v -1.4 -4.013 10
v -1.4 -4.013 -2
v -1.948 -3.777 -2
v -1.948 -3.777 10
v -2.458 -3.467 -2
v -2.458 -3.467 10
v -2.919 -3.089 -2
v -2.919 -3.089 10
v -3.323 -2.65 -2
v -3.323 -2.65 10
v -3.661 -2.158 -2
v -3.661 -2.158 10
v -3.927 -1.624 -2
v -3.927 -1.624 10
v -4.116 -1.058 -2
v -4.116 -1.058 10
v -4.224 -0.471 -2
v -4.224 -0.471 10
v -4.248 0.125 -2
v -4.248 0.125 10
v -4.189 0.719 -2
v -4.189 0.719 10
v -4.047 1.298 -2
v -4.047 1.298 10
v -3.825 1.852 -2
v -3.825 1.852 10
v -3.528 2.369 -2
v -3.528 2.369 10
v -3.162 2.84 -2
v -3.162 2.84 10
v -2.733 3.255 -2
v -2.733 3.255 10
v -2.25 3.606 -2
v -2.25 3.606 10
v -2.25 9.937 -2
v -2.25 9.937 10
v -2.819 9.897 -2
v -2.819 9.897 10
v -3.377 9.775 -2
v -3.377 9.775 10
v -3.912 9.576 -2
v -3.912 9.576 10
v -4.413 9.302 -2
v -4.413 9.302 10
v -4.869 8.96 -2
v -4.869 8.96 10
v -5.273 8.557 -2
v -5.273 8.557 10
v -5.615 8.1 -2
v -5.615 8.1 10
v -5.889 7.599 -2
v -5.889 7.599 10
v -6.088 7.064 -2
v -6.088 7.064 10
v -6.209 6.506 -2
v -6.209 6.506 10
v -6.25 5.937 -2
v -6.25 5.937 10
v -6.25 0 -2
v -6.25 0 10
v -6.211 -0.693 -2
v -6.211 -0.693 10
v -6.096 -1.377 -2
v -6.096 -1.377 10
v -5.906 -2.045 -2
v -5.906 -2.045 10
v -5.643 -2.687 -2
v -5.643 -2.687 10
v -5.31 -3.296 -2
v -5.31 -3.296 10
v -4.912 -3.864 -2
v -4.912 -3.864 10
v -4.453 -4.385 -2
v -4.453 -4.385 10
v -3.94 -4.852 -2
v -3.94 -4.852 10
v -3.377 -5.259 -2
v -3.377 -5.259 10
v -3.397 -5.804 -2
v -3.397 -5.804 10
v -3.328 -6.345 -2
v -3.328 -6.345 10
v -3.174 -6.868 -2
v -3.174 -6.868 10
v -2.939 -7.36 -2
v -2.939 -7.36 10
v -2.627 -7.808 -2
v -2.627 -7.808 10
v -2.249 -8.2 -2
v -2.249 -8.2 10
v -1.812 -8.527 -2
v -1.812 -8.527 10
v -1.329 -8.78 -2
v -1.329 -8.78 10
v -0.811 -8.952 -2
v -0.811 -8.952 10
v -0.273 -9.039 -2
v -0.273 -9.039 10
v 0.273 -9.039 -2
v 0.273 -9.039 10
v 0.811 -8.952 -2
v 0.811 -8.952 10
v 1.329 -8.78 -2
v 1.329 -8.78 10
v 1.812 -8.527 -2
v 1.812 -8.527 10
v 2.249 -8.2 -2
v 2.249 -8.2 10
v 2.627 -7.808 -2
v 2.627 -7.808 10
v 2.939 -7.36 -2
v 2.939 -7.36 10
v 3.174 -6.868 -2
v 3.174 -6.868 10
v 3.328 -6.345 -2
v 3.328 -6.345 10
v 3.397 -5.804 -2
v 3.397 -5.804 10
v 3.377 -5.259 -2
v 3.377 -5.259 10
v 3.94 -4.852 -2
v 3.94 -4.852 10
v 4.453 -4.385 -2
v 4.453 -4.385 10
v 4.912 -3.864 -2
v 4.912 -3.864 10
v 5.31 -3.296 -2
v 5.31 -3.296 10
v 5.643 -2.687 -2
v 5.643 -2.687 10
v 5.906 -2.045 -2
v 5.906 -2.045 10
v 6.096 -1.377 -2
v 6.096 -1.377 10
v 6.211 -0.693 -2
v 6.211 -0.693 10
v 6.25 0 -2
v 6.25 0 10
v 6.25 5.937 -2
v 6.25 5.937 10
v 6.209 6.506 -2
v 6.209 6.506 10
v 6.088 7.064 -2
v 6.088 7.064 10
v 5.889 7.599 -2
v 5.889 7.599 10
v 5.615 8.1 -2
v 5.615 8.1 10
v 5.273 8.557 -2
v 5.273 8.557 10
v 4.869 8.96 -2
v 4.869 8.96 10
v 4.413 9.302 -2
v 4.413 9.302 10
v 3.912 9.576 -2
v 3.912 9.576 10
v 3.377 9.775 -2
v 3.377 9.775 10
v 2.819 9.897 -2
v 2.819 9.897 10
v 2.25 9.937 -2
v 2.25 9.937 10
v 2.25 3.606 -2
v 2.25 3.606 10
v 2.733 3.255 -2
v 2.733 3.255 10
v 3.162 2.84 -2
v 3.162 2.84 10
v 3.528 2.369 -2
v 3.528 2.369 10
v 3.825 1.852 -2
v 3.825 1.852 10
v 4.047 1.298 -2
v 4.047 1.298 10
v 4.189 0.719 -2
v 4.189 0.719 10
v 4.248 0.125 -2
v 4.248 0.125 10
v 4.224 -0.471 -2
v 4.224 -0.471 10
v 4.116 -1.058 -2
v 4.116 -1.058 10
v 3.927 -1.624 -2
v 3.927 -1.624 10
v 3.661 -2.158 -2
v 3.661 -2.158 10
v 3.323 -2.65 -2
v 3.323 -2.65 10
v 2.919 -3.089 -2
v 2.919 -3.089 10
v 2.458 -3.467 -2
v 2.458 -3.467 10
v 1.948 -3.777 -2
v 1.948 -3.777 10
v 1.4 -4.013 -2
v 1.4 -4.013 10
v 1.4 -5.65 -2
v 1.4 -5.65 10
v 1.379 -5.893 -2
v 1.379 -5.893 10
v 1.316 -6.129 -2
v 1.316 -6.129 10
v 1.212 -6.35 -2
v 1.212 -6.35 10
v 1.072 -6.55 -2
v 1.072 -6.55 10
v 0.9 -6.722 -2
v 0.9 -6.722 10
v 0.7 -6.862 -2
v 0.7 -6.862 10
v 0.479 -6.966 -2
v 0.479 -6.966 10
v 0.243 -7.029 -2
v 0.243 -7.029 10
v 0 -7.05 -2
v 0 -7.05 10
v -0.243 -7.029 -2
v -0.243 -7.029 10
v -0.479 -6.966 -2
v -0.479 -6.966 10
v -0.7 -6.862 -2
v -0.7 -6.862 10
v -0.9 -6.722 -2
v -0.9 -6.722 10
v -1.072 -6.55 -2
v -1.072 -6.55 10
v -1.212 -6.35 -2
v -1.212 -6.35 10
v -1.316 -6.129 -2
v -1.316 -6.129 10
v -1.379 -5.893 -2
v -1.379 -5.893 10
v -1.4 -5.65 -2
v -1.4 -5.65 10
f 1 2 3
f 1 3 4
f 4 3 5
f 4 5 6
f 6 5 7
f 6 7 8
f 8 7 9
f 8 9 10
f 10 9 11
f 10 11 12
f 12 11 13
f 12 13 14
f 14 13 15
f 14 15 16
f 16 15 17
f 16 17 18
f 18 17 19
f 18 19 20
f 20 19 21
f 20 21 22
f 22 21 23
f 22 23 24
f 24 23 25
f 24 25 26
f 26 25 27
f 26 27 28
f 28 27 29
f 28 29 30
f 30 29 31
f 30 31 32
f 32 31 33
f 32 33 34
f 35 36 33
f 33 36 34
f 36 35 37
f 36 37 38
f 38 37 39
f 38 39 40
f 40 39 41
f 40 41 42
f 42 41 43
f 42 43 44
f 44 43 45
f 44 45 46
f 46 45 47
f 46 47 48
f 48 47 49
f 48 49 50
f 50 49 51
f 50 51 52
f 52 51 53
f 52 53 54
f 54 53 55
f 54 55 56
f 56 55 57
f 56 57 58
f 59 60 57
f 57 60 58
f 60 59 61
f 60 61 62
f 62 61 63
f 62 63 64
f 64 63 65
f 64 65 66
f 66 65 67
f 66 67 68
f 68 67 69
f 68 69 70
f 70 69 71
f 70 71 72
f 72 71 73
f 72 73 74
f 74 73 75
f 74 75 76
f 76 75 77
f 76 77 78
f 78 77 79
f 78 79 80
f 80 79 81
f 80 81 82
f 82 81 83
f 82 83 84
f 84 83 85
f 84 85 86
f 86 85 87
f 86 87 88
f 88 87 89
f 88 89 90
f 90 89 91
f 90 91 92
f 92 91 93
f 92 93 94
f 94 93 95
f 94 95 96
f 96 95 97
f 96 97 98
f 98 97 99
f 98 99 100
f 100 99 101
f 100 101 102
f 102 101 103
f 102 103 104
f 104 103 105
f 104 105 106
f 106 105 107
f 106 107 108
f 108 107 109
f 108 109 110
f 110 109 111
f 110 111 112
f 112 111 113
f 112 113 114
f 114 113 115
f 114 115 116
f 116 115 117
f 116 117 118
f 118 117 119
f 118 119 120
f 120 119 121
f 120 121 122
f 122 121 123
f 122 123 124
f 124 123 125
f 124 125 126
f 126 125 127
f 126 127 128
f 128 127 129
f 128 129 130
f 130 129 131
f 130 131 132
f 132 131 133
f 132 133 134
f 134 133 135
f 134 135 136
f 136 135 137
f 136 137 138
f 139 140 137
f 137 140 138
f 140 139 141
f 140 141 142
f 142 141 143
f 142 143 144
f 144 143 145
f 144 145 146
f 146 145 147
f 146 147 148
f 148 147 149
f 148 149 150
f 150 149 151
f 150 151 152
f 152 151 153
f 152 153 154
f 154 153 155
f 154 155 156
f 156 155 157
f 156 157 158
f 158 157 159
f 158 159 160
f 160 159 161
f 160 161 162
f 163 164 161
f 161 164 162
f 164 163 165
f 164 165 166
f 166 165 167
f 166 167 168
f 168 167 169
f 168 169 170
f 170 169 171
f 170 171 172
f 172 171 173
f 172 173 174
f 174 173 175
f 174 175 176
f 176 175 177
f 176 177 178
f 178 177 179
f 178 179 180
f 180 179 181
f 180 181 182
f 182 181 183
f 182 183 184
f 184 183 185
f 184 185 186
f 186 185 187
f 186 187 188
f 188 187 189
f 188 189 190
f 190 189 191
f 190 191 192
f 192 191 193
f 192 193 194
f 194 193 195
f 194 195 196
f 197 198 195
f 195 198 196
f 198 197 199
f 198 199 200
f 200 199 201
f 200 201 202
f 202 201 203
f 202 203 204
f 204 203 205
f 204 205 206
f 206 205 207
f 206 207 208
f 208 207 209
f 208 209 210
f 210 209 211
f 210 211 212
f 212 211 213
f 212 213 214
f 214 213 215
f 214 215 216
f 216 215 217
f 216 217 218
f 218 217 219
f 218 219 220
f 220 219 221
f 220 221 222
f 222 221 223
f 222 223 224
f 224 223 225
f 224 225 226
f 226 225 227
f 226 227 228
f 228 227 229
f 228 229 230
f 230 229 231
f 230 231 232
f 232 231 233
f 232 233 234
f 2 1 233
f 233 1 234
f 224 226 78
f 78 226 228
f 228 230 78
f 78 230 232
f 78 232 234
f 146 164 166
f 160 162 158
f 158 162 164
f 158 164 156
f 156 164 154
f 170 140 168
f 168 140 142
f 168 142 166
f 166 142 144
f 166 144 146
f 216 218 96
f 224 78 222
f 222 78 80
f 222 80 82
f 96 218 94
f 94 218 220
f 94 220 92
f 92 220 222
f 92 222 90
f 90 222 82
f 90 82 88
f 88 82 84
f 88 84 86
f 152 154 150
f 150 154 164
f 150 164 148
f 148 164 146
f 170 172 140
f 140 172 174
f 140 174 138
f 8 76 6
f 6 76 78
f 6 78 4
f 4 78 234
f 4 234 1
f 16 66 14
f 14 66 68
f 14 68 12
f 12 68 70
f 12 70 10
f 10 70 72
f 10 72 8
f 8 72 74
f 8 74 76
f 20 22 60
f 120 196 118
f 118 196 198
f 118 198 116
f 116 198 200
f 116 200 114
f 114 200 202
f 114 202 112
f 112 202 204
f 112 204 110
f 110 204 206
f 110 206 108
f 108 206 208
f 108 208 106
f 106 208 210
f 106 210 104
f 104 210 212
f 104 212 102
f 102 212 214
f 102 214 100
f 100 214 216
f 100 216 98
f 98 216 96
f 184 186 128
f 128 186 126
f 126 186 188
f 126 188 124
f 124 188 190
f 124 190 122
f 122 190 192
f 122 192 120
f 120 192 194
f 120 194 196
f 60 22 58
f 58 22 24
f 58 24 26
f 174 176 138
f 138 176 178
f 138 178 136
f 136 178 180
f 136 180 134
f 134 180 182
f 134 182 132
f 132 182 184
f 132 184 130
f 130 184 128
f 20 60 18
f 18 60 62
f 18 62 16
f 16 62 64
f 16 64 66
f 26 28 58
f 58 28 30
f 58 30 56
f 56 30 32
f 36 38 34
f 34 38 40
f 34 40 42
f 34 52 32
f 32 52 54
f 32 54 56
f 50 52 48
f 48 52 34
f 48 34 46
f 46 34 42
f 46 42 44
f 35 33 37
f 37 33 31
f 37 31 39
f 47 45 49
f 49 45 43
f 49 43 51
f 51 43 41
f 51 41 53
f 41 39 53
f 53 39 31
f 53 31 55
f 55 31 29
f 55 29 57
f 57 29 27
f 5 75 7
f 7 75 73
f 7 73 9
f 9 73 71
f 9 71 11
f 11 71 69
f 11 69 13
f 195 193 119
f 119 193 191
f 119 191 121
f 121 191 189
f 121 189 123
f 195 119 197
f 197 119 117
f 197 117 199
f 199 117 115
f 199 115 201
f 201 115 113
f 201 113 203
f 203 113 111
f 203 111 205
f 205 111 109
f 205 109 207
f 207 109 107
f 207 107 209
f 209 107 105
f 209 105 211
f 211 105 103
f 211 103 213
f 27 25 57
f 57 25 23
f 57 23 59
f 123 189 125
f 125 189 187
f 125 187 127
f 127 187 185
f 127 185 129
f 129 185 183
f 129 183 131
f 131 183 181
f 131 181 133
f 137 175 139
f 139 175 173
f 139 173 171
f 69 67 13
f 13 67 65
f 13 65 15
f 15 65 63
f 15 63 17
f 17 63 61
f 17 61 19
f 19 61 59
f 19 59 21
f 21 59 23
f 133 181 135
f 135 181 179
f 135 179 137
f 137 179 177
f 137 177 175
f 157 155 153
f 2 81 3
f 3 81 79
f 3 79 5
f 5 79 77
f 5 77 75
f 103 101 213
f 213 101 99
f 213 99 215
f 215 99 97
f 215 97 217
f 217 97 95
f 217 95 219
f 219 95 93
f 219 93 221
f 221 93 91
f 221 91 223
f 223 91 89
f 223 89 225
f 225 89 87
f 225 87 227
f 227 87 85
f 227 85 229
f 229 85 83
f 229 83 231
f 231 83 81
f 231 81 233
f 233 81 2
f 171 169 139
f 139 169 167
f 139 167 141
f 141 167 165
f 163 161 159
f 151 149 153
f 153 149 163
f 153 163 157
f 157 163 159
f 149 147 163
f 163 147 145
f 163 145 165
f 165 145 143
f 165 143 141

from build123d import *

# Parameters (mm, degrees)
BOSS_EXTRUDE1_DEPTH = 10
BOSS_EXTRUDE2_START = -2
BOSS_EXTRUDE2_DEPTH = 2


with BuildPart() as part:
    # Sketch1 → Boss-Extrude1 (new body)
    with BuildSketch(Plane.XY):
        with BuildLine():
            Line((2.25, 5.018714975), (2.25, 3.605551275))
            ThreePointArc((2.25, 3.605551275), (4.223791394, -0.47126029), (1.4, -4.012792045))
            Line((1.4, -4.012792045), (1.4, -5.65))
            ThreePointArc((1.4, -5.65), (0, -7.05), (-1.4, -5.65))
            Line((-1.4, -5.65), (-1.4, -4.012792045))
            ThreePointArc((-1.4, -4.012792045), (-4.223791394, -0.47126029), (-2.25, 3.605551275))
            Line((-2.25, 3.605551275), (-2.25, 5.018714975))
            Line((-2.25, 5.018714975), (-2.25, 9.937240371))
            ThreePointArc((-2.25, 9.937240371), (-5.078427125, 8.765667496), (-6.25, 5.937240371))
            Line((-6.25, 5.937240371), (-6.25, 0))
            ThreePointArc((-6.25, 0), (-5.485043656, -2.996130185), (-3.377425252, -5.258849558))
            ThreePointArc((-3.377425252, -5.258849558), (0, -9.05), (3.377425252, -5.258849558))
            ThreePointArc((3.377425252, -5.258849558), (5.485043656, -2.996130185), (6.25, 0))
            Line((6.25, 0), (6.25, 5.937240371))
            ThreePointArc((6.25, 5.937240371), (5.078427125, 8.765667496), (2.25, 9.937240371))
            Line((2.25, 9.937240371), (2.25, 5.018714975))
        make_face()
    extrude(amount=BOSS_EXTRUDE1_DEPTH)

    # Sketch1<5> → Boss-Extrude2 (add)
    with BuildSketch(Plane.XY.offset(BOSS_EXTRUDE2_START)):
        with BuildLine():
            Line((2.25, 5.018714975), (2.25, 3.605551275))
            ThreePointArc((2.25, 3.605551275), (4.223791394, -0.47126029), (1.4, -4.012792045))
            Line((1.4, -4.012792045), (1.4, -5.65))
            ThreePointArc((1.4, -5.65), (0, -7.05), (-1.4, -5.65))
            Line((-1.4, -5.65), (-1.4, -4.012792045))
            ThreePointArc((-1.4, -4.012792045), (-4.223791394, -0.47126029), (-2.25, 3.605551275))
            Line((-2.25, 3.605551275), (-2.25, 5.018714975))
            Line((-2.25, 5.018714975), (-2.25, 9.937240371))
            ThreePointArc((-2.25, 9.937240371), (-5.078427125, 8.765667496), (-6.25, 5.937240371))
            Line((-6.25, 5.937240371), (-6.25, 0))
            ThreePointArc((-6.25, 0), (-5.485043656, -2.996130185), (-3.377425252, -5.258849558))
            ThreePointArc((-3.377425252, -5.258849558), (0, -9.05), (3.377425252, -5.258849558))
            ThreePointArc((3.377425252, -5.258849558), (5.485043656, -2.996130185), (6.25, 0))
            Line((6.25, 0), (6.25, 5.937240371))
            ThreePointArc((6.25, 5.937240371), (5.078427125, 8.765667496), (2.25, 9.937240371))
            Line((2.25, 9.937240371), (2.25, 5.018714975))
        make_face()
    extrude(amount=BOSS_EXTRUDE2_DEPTH)


solid = part.part
